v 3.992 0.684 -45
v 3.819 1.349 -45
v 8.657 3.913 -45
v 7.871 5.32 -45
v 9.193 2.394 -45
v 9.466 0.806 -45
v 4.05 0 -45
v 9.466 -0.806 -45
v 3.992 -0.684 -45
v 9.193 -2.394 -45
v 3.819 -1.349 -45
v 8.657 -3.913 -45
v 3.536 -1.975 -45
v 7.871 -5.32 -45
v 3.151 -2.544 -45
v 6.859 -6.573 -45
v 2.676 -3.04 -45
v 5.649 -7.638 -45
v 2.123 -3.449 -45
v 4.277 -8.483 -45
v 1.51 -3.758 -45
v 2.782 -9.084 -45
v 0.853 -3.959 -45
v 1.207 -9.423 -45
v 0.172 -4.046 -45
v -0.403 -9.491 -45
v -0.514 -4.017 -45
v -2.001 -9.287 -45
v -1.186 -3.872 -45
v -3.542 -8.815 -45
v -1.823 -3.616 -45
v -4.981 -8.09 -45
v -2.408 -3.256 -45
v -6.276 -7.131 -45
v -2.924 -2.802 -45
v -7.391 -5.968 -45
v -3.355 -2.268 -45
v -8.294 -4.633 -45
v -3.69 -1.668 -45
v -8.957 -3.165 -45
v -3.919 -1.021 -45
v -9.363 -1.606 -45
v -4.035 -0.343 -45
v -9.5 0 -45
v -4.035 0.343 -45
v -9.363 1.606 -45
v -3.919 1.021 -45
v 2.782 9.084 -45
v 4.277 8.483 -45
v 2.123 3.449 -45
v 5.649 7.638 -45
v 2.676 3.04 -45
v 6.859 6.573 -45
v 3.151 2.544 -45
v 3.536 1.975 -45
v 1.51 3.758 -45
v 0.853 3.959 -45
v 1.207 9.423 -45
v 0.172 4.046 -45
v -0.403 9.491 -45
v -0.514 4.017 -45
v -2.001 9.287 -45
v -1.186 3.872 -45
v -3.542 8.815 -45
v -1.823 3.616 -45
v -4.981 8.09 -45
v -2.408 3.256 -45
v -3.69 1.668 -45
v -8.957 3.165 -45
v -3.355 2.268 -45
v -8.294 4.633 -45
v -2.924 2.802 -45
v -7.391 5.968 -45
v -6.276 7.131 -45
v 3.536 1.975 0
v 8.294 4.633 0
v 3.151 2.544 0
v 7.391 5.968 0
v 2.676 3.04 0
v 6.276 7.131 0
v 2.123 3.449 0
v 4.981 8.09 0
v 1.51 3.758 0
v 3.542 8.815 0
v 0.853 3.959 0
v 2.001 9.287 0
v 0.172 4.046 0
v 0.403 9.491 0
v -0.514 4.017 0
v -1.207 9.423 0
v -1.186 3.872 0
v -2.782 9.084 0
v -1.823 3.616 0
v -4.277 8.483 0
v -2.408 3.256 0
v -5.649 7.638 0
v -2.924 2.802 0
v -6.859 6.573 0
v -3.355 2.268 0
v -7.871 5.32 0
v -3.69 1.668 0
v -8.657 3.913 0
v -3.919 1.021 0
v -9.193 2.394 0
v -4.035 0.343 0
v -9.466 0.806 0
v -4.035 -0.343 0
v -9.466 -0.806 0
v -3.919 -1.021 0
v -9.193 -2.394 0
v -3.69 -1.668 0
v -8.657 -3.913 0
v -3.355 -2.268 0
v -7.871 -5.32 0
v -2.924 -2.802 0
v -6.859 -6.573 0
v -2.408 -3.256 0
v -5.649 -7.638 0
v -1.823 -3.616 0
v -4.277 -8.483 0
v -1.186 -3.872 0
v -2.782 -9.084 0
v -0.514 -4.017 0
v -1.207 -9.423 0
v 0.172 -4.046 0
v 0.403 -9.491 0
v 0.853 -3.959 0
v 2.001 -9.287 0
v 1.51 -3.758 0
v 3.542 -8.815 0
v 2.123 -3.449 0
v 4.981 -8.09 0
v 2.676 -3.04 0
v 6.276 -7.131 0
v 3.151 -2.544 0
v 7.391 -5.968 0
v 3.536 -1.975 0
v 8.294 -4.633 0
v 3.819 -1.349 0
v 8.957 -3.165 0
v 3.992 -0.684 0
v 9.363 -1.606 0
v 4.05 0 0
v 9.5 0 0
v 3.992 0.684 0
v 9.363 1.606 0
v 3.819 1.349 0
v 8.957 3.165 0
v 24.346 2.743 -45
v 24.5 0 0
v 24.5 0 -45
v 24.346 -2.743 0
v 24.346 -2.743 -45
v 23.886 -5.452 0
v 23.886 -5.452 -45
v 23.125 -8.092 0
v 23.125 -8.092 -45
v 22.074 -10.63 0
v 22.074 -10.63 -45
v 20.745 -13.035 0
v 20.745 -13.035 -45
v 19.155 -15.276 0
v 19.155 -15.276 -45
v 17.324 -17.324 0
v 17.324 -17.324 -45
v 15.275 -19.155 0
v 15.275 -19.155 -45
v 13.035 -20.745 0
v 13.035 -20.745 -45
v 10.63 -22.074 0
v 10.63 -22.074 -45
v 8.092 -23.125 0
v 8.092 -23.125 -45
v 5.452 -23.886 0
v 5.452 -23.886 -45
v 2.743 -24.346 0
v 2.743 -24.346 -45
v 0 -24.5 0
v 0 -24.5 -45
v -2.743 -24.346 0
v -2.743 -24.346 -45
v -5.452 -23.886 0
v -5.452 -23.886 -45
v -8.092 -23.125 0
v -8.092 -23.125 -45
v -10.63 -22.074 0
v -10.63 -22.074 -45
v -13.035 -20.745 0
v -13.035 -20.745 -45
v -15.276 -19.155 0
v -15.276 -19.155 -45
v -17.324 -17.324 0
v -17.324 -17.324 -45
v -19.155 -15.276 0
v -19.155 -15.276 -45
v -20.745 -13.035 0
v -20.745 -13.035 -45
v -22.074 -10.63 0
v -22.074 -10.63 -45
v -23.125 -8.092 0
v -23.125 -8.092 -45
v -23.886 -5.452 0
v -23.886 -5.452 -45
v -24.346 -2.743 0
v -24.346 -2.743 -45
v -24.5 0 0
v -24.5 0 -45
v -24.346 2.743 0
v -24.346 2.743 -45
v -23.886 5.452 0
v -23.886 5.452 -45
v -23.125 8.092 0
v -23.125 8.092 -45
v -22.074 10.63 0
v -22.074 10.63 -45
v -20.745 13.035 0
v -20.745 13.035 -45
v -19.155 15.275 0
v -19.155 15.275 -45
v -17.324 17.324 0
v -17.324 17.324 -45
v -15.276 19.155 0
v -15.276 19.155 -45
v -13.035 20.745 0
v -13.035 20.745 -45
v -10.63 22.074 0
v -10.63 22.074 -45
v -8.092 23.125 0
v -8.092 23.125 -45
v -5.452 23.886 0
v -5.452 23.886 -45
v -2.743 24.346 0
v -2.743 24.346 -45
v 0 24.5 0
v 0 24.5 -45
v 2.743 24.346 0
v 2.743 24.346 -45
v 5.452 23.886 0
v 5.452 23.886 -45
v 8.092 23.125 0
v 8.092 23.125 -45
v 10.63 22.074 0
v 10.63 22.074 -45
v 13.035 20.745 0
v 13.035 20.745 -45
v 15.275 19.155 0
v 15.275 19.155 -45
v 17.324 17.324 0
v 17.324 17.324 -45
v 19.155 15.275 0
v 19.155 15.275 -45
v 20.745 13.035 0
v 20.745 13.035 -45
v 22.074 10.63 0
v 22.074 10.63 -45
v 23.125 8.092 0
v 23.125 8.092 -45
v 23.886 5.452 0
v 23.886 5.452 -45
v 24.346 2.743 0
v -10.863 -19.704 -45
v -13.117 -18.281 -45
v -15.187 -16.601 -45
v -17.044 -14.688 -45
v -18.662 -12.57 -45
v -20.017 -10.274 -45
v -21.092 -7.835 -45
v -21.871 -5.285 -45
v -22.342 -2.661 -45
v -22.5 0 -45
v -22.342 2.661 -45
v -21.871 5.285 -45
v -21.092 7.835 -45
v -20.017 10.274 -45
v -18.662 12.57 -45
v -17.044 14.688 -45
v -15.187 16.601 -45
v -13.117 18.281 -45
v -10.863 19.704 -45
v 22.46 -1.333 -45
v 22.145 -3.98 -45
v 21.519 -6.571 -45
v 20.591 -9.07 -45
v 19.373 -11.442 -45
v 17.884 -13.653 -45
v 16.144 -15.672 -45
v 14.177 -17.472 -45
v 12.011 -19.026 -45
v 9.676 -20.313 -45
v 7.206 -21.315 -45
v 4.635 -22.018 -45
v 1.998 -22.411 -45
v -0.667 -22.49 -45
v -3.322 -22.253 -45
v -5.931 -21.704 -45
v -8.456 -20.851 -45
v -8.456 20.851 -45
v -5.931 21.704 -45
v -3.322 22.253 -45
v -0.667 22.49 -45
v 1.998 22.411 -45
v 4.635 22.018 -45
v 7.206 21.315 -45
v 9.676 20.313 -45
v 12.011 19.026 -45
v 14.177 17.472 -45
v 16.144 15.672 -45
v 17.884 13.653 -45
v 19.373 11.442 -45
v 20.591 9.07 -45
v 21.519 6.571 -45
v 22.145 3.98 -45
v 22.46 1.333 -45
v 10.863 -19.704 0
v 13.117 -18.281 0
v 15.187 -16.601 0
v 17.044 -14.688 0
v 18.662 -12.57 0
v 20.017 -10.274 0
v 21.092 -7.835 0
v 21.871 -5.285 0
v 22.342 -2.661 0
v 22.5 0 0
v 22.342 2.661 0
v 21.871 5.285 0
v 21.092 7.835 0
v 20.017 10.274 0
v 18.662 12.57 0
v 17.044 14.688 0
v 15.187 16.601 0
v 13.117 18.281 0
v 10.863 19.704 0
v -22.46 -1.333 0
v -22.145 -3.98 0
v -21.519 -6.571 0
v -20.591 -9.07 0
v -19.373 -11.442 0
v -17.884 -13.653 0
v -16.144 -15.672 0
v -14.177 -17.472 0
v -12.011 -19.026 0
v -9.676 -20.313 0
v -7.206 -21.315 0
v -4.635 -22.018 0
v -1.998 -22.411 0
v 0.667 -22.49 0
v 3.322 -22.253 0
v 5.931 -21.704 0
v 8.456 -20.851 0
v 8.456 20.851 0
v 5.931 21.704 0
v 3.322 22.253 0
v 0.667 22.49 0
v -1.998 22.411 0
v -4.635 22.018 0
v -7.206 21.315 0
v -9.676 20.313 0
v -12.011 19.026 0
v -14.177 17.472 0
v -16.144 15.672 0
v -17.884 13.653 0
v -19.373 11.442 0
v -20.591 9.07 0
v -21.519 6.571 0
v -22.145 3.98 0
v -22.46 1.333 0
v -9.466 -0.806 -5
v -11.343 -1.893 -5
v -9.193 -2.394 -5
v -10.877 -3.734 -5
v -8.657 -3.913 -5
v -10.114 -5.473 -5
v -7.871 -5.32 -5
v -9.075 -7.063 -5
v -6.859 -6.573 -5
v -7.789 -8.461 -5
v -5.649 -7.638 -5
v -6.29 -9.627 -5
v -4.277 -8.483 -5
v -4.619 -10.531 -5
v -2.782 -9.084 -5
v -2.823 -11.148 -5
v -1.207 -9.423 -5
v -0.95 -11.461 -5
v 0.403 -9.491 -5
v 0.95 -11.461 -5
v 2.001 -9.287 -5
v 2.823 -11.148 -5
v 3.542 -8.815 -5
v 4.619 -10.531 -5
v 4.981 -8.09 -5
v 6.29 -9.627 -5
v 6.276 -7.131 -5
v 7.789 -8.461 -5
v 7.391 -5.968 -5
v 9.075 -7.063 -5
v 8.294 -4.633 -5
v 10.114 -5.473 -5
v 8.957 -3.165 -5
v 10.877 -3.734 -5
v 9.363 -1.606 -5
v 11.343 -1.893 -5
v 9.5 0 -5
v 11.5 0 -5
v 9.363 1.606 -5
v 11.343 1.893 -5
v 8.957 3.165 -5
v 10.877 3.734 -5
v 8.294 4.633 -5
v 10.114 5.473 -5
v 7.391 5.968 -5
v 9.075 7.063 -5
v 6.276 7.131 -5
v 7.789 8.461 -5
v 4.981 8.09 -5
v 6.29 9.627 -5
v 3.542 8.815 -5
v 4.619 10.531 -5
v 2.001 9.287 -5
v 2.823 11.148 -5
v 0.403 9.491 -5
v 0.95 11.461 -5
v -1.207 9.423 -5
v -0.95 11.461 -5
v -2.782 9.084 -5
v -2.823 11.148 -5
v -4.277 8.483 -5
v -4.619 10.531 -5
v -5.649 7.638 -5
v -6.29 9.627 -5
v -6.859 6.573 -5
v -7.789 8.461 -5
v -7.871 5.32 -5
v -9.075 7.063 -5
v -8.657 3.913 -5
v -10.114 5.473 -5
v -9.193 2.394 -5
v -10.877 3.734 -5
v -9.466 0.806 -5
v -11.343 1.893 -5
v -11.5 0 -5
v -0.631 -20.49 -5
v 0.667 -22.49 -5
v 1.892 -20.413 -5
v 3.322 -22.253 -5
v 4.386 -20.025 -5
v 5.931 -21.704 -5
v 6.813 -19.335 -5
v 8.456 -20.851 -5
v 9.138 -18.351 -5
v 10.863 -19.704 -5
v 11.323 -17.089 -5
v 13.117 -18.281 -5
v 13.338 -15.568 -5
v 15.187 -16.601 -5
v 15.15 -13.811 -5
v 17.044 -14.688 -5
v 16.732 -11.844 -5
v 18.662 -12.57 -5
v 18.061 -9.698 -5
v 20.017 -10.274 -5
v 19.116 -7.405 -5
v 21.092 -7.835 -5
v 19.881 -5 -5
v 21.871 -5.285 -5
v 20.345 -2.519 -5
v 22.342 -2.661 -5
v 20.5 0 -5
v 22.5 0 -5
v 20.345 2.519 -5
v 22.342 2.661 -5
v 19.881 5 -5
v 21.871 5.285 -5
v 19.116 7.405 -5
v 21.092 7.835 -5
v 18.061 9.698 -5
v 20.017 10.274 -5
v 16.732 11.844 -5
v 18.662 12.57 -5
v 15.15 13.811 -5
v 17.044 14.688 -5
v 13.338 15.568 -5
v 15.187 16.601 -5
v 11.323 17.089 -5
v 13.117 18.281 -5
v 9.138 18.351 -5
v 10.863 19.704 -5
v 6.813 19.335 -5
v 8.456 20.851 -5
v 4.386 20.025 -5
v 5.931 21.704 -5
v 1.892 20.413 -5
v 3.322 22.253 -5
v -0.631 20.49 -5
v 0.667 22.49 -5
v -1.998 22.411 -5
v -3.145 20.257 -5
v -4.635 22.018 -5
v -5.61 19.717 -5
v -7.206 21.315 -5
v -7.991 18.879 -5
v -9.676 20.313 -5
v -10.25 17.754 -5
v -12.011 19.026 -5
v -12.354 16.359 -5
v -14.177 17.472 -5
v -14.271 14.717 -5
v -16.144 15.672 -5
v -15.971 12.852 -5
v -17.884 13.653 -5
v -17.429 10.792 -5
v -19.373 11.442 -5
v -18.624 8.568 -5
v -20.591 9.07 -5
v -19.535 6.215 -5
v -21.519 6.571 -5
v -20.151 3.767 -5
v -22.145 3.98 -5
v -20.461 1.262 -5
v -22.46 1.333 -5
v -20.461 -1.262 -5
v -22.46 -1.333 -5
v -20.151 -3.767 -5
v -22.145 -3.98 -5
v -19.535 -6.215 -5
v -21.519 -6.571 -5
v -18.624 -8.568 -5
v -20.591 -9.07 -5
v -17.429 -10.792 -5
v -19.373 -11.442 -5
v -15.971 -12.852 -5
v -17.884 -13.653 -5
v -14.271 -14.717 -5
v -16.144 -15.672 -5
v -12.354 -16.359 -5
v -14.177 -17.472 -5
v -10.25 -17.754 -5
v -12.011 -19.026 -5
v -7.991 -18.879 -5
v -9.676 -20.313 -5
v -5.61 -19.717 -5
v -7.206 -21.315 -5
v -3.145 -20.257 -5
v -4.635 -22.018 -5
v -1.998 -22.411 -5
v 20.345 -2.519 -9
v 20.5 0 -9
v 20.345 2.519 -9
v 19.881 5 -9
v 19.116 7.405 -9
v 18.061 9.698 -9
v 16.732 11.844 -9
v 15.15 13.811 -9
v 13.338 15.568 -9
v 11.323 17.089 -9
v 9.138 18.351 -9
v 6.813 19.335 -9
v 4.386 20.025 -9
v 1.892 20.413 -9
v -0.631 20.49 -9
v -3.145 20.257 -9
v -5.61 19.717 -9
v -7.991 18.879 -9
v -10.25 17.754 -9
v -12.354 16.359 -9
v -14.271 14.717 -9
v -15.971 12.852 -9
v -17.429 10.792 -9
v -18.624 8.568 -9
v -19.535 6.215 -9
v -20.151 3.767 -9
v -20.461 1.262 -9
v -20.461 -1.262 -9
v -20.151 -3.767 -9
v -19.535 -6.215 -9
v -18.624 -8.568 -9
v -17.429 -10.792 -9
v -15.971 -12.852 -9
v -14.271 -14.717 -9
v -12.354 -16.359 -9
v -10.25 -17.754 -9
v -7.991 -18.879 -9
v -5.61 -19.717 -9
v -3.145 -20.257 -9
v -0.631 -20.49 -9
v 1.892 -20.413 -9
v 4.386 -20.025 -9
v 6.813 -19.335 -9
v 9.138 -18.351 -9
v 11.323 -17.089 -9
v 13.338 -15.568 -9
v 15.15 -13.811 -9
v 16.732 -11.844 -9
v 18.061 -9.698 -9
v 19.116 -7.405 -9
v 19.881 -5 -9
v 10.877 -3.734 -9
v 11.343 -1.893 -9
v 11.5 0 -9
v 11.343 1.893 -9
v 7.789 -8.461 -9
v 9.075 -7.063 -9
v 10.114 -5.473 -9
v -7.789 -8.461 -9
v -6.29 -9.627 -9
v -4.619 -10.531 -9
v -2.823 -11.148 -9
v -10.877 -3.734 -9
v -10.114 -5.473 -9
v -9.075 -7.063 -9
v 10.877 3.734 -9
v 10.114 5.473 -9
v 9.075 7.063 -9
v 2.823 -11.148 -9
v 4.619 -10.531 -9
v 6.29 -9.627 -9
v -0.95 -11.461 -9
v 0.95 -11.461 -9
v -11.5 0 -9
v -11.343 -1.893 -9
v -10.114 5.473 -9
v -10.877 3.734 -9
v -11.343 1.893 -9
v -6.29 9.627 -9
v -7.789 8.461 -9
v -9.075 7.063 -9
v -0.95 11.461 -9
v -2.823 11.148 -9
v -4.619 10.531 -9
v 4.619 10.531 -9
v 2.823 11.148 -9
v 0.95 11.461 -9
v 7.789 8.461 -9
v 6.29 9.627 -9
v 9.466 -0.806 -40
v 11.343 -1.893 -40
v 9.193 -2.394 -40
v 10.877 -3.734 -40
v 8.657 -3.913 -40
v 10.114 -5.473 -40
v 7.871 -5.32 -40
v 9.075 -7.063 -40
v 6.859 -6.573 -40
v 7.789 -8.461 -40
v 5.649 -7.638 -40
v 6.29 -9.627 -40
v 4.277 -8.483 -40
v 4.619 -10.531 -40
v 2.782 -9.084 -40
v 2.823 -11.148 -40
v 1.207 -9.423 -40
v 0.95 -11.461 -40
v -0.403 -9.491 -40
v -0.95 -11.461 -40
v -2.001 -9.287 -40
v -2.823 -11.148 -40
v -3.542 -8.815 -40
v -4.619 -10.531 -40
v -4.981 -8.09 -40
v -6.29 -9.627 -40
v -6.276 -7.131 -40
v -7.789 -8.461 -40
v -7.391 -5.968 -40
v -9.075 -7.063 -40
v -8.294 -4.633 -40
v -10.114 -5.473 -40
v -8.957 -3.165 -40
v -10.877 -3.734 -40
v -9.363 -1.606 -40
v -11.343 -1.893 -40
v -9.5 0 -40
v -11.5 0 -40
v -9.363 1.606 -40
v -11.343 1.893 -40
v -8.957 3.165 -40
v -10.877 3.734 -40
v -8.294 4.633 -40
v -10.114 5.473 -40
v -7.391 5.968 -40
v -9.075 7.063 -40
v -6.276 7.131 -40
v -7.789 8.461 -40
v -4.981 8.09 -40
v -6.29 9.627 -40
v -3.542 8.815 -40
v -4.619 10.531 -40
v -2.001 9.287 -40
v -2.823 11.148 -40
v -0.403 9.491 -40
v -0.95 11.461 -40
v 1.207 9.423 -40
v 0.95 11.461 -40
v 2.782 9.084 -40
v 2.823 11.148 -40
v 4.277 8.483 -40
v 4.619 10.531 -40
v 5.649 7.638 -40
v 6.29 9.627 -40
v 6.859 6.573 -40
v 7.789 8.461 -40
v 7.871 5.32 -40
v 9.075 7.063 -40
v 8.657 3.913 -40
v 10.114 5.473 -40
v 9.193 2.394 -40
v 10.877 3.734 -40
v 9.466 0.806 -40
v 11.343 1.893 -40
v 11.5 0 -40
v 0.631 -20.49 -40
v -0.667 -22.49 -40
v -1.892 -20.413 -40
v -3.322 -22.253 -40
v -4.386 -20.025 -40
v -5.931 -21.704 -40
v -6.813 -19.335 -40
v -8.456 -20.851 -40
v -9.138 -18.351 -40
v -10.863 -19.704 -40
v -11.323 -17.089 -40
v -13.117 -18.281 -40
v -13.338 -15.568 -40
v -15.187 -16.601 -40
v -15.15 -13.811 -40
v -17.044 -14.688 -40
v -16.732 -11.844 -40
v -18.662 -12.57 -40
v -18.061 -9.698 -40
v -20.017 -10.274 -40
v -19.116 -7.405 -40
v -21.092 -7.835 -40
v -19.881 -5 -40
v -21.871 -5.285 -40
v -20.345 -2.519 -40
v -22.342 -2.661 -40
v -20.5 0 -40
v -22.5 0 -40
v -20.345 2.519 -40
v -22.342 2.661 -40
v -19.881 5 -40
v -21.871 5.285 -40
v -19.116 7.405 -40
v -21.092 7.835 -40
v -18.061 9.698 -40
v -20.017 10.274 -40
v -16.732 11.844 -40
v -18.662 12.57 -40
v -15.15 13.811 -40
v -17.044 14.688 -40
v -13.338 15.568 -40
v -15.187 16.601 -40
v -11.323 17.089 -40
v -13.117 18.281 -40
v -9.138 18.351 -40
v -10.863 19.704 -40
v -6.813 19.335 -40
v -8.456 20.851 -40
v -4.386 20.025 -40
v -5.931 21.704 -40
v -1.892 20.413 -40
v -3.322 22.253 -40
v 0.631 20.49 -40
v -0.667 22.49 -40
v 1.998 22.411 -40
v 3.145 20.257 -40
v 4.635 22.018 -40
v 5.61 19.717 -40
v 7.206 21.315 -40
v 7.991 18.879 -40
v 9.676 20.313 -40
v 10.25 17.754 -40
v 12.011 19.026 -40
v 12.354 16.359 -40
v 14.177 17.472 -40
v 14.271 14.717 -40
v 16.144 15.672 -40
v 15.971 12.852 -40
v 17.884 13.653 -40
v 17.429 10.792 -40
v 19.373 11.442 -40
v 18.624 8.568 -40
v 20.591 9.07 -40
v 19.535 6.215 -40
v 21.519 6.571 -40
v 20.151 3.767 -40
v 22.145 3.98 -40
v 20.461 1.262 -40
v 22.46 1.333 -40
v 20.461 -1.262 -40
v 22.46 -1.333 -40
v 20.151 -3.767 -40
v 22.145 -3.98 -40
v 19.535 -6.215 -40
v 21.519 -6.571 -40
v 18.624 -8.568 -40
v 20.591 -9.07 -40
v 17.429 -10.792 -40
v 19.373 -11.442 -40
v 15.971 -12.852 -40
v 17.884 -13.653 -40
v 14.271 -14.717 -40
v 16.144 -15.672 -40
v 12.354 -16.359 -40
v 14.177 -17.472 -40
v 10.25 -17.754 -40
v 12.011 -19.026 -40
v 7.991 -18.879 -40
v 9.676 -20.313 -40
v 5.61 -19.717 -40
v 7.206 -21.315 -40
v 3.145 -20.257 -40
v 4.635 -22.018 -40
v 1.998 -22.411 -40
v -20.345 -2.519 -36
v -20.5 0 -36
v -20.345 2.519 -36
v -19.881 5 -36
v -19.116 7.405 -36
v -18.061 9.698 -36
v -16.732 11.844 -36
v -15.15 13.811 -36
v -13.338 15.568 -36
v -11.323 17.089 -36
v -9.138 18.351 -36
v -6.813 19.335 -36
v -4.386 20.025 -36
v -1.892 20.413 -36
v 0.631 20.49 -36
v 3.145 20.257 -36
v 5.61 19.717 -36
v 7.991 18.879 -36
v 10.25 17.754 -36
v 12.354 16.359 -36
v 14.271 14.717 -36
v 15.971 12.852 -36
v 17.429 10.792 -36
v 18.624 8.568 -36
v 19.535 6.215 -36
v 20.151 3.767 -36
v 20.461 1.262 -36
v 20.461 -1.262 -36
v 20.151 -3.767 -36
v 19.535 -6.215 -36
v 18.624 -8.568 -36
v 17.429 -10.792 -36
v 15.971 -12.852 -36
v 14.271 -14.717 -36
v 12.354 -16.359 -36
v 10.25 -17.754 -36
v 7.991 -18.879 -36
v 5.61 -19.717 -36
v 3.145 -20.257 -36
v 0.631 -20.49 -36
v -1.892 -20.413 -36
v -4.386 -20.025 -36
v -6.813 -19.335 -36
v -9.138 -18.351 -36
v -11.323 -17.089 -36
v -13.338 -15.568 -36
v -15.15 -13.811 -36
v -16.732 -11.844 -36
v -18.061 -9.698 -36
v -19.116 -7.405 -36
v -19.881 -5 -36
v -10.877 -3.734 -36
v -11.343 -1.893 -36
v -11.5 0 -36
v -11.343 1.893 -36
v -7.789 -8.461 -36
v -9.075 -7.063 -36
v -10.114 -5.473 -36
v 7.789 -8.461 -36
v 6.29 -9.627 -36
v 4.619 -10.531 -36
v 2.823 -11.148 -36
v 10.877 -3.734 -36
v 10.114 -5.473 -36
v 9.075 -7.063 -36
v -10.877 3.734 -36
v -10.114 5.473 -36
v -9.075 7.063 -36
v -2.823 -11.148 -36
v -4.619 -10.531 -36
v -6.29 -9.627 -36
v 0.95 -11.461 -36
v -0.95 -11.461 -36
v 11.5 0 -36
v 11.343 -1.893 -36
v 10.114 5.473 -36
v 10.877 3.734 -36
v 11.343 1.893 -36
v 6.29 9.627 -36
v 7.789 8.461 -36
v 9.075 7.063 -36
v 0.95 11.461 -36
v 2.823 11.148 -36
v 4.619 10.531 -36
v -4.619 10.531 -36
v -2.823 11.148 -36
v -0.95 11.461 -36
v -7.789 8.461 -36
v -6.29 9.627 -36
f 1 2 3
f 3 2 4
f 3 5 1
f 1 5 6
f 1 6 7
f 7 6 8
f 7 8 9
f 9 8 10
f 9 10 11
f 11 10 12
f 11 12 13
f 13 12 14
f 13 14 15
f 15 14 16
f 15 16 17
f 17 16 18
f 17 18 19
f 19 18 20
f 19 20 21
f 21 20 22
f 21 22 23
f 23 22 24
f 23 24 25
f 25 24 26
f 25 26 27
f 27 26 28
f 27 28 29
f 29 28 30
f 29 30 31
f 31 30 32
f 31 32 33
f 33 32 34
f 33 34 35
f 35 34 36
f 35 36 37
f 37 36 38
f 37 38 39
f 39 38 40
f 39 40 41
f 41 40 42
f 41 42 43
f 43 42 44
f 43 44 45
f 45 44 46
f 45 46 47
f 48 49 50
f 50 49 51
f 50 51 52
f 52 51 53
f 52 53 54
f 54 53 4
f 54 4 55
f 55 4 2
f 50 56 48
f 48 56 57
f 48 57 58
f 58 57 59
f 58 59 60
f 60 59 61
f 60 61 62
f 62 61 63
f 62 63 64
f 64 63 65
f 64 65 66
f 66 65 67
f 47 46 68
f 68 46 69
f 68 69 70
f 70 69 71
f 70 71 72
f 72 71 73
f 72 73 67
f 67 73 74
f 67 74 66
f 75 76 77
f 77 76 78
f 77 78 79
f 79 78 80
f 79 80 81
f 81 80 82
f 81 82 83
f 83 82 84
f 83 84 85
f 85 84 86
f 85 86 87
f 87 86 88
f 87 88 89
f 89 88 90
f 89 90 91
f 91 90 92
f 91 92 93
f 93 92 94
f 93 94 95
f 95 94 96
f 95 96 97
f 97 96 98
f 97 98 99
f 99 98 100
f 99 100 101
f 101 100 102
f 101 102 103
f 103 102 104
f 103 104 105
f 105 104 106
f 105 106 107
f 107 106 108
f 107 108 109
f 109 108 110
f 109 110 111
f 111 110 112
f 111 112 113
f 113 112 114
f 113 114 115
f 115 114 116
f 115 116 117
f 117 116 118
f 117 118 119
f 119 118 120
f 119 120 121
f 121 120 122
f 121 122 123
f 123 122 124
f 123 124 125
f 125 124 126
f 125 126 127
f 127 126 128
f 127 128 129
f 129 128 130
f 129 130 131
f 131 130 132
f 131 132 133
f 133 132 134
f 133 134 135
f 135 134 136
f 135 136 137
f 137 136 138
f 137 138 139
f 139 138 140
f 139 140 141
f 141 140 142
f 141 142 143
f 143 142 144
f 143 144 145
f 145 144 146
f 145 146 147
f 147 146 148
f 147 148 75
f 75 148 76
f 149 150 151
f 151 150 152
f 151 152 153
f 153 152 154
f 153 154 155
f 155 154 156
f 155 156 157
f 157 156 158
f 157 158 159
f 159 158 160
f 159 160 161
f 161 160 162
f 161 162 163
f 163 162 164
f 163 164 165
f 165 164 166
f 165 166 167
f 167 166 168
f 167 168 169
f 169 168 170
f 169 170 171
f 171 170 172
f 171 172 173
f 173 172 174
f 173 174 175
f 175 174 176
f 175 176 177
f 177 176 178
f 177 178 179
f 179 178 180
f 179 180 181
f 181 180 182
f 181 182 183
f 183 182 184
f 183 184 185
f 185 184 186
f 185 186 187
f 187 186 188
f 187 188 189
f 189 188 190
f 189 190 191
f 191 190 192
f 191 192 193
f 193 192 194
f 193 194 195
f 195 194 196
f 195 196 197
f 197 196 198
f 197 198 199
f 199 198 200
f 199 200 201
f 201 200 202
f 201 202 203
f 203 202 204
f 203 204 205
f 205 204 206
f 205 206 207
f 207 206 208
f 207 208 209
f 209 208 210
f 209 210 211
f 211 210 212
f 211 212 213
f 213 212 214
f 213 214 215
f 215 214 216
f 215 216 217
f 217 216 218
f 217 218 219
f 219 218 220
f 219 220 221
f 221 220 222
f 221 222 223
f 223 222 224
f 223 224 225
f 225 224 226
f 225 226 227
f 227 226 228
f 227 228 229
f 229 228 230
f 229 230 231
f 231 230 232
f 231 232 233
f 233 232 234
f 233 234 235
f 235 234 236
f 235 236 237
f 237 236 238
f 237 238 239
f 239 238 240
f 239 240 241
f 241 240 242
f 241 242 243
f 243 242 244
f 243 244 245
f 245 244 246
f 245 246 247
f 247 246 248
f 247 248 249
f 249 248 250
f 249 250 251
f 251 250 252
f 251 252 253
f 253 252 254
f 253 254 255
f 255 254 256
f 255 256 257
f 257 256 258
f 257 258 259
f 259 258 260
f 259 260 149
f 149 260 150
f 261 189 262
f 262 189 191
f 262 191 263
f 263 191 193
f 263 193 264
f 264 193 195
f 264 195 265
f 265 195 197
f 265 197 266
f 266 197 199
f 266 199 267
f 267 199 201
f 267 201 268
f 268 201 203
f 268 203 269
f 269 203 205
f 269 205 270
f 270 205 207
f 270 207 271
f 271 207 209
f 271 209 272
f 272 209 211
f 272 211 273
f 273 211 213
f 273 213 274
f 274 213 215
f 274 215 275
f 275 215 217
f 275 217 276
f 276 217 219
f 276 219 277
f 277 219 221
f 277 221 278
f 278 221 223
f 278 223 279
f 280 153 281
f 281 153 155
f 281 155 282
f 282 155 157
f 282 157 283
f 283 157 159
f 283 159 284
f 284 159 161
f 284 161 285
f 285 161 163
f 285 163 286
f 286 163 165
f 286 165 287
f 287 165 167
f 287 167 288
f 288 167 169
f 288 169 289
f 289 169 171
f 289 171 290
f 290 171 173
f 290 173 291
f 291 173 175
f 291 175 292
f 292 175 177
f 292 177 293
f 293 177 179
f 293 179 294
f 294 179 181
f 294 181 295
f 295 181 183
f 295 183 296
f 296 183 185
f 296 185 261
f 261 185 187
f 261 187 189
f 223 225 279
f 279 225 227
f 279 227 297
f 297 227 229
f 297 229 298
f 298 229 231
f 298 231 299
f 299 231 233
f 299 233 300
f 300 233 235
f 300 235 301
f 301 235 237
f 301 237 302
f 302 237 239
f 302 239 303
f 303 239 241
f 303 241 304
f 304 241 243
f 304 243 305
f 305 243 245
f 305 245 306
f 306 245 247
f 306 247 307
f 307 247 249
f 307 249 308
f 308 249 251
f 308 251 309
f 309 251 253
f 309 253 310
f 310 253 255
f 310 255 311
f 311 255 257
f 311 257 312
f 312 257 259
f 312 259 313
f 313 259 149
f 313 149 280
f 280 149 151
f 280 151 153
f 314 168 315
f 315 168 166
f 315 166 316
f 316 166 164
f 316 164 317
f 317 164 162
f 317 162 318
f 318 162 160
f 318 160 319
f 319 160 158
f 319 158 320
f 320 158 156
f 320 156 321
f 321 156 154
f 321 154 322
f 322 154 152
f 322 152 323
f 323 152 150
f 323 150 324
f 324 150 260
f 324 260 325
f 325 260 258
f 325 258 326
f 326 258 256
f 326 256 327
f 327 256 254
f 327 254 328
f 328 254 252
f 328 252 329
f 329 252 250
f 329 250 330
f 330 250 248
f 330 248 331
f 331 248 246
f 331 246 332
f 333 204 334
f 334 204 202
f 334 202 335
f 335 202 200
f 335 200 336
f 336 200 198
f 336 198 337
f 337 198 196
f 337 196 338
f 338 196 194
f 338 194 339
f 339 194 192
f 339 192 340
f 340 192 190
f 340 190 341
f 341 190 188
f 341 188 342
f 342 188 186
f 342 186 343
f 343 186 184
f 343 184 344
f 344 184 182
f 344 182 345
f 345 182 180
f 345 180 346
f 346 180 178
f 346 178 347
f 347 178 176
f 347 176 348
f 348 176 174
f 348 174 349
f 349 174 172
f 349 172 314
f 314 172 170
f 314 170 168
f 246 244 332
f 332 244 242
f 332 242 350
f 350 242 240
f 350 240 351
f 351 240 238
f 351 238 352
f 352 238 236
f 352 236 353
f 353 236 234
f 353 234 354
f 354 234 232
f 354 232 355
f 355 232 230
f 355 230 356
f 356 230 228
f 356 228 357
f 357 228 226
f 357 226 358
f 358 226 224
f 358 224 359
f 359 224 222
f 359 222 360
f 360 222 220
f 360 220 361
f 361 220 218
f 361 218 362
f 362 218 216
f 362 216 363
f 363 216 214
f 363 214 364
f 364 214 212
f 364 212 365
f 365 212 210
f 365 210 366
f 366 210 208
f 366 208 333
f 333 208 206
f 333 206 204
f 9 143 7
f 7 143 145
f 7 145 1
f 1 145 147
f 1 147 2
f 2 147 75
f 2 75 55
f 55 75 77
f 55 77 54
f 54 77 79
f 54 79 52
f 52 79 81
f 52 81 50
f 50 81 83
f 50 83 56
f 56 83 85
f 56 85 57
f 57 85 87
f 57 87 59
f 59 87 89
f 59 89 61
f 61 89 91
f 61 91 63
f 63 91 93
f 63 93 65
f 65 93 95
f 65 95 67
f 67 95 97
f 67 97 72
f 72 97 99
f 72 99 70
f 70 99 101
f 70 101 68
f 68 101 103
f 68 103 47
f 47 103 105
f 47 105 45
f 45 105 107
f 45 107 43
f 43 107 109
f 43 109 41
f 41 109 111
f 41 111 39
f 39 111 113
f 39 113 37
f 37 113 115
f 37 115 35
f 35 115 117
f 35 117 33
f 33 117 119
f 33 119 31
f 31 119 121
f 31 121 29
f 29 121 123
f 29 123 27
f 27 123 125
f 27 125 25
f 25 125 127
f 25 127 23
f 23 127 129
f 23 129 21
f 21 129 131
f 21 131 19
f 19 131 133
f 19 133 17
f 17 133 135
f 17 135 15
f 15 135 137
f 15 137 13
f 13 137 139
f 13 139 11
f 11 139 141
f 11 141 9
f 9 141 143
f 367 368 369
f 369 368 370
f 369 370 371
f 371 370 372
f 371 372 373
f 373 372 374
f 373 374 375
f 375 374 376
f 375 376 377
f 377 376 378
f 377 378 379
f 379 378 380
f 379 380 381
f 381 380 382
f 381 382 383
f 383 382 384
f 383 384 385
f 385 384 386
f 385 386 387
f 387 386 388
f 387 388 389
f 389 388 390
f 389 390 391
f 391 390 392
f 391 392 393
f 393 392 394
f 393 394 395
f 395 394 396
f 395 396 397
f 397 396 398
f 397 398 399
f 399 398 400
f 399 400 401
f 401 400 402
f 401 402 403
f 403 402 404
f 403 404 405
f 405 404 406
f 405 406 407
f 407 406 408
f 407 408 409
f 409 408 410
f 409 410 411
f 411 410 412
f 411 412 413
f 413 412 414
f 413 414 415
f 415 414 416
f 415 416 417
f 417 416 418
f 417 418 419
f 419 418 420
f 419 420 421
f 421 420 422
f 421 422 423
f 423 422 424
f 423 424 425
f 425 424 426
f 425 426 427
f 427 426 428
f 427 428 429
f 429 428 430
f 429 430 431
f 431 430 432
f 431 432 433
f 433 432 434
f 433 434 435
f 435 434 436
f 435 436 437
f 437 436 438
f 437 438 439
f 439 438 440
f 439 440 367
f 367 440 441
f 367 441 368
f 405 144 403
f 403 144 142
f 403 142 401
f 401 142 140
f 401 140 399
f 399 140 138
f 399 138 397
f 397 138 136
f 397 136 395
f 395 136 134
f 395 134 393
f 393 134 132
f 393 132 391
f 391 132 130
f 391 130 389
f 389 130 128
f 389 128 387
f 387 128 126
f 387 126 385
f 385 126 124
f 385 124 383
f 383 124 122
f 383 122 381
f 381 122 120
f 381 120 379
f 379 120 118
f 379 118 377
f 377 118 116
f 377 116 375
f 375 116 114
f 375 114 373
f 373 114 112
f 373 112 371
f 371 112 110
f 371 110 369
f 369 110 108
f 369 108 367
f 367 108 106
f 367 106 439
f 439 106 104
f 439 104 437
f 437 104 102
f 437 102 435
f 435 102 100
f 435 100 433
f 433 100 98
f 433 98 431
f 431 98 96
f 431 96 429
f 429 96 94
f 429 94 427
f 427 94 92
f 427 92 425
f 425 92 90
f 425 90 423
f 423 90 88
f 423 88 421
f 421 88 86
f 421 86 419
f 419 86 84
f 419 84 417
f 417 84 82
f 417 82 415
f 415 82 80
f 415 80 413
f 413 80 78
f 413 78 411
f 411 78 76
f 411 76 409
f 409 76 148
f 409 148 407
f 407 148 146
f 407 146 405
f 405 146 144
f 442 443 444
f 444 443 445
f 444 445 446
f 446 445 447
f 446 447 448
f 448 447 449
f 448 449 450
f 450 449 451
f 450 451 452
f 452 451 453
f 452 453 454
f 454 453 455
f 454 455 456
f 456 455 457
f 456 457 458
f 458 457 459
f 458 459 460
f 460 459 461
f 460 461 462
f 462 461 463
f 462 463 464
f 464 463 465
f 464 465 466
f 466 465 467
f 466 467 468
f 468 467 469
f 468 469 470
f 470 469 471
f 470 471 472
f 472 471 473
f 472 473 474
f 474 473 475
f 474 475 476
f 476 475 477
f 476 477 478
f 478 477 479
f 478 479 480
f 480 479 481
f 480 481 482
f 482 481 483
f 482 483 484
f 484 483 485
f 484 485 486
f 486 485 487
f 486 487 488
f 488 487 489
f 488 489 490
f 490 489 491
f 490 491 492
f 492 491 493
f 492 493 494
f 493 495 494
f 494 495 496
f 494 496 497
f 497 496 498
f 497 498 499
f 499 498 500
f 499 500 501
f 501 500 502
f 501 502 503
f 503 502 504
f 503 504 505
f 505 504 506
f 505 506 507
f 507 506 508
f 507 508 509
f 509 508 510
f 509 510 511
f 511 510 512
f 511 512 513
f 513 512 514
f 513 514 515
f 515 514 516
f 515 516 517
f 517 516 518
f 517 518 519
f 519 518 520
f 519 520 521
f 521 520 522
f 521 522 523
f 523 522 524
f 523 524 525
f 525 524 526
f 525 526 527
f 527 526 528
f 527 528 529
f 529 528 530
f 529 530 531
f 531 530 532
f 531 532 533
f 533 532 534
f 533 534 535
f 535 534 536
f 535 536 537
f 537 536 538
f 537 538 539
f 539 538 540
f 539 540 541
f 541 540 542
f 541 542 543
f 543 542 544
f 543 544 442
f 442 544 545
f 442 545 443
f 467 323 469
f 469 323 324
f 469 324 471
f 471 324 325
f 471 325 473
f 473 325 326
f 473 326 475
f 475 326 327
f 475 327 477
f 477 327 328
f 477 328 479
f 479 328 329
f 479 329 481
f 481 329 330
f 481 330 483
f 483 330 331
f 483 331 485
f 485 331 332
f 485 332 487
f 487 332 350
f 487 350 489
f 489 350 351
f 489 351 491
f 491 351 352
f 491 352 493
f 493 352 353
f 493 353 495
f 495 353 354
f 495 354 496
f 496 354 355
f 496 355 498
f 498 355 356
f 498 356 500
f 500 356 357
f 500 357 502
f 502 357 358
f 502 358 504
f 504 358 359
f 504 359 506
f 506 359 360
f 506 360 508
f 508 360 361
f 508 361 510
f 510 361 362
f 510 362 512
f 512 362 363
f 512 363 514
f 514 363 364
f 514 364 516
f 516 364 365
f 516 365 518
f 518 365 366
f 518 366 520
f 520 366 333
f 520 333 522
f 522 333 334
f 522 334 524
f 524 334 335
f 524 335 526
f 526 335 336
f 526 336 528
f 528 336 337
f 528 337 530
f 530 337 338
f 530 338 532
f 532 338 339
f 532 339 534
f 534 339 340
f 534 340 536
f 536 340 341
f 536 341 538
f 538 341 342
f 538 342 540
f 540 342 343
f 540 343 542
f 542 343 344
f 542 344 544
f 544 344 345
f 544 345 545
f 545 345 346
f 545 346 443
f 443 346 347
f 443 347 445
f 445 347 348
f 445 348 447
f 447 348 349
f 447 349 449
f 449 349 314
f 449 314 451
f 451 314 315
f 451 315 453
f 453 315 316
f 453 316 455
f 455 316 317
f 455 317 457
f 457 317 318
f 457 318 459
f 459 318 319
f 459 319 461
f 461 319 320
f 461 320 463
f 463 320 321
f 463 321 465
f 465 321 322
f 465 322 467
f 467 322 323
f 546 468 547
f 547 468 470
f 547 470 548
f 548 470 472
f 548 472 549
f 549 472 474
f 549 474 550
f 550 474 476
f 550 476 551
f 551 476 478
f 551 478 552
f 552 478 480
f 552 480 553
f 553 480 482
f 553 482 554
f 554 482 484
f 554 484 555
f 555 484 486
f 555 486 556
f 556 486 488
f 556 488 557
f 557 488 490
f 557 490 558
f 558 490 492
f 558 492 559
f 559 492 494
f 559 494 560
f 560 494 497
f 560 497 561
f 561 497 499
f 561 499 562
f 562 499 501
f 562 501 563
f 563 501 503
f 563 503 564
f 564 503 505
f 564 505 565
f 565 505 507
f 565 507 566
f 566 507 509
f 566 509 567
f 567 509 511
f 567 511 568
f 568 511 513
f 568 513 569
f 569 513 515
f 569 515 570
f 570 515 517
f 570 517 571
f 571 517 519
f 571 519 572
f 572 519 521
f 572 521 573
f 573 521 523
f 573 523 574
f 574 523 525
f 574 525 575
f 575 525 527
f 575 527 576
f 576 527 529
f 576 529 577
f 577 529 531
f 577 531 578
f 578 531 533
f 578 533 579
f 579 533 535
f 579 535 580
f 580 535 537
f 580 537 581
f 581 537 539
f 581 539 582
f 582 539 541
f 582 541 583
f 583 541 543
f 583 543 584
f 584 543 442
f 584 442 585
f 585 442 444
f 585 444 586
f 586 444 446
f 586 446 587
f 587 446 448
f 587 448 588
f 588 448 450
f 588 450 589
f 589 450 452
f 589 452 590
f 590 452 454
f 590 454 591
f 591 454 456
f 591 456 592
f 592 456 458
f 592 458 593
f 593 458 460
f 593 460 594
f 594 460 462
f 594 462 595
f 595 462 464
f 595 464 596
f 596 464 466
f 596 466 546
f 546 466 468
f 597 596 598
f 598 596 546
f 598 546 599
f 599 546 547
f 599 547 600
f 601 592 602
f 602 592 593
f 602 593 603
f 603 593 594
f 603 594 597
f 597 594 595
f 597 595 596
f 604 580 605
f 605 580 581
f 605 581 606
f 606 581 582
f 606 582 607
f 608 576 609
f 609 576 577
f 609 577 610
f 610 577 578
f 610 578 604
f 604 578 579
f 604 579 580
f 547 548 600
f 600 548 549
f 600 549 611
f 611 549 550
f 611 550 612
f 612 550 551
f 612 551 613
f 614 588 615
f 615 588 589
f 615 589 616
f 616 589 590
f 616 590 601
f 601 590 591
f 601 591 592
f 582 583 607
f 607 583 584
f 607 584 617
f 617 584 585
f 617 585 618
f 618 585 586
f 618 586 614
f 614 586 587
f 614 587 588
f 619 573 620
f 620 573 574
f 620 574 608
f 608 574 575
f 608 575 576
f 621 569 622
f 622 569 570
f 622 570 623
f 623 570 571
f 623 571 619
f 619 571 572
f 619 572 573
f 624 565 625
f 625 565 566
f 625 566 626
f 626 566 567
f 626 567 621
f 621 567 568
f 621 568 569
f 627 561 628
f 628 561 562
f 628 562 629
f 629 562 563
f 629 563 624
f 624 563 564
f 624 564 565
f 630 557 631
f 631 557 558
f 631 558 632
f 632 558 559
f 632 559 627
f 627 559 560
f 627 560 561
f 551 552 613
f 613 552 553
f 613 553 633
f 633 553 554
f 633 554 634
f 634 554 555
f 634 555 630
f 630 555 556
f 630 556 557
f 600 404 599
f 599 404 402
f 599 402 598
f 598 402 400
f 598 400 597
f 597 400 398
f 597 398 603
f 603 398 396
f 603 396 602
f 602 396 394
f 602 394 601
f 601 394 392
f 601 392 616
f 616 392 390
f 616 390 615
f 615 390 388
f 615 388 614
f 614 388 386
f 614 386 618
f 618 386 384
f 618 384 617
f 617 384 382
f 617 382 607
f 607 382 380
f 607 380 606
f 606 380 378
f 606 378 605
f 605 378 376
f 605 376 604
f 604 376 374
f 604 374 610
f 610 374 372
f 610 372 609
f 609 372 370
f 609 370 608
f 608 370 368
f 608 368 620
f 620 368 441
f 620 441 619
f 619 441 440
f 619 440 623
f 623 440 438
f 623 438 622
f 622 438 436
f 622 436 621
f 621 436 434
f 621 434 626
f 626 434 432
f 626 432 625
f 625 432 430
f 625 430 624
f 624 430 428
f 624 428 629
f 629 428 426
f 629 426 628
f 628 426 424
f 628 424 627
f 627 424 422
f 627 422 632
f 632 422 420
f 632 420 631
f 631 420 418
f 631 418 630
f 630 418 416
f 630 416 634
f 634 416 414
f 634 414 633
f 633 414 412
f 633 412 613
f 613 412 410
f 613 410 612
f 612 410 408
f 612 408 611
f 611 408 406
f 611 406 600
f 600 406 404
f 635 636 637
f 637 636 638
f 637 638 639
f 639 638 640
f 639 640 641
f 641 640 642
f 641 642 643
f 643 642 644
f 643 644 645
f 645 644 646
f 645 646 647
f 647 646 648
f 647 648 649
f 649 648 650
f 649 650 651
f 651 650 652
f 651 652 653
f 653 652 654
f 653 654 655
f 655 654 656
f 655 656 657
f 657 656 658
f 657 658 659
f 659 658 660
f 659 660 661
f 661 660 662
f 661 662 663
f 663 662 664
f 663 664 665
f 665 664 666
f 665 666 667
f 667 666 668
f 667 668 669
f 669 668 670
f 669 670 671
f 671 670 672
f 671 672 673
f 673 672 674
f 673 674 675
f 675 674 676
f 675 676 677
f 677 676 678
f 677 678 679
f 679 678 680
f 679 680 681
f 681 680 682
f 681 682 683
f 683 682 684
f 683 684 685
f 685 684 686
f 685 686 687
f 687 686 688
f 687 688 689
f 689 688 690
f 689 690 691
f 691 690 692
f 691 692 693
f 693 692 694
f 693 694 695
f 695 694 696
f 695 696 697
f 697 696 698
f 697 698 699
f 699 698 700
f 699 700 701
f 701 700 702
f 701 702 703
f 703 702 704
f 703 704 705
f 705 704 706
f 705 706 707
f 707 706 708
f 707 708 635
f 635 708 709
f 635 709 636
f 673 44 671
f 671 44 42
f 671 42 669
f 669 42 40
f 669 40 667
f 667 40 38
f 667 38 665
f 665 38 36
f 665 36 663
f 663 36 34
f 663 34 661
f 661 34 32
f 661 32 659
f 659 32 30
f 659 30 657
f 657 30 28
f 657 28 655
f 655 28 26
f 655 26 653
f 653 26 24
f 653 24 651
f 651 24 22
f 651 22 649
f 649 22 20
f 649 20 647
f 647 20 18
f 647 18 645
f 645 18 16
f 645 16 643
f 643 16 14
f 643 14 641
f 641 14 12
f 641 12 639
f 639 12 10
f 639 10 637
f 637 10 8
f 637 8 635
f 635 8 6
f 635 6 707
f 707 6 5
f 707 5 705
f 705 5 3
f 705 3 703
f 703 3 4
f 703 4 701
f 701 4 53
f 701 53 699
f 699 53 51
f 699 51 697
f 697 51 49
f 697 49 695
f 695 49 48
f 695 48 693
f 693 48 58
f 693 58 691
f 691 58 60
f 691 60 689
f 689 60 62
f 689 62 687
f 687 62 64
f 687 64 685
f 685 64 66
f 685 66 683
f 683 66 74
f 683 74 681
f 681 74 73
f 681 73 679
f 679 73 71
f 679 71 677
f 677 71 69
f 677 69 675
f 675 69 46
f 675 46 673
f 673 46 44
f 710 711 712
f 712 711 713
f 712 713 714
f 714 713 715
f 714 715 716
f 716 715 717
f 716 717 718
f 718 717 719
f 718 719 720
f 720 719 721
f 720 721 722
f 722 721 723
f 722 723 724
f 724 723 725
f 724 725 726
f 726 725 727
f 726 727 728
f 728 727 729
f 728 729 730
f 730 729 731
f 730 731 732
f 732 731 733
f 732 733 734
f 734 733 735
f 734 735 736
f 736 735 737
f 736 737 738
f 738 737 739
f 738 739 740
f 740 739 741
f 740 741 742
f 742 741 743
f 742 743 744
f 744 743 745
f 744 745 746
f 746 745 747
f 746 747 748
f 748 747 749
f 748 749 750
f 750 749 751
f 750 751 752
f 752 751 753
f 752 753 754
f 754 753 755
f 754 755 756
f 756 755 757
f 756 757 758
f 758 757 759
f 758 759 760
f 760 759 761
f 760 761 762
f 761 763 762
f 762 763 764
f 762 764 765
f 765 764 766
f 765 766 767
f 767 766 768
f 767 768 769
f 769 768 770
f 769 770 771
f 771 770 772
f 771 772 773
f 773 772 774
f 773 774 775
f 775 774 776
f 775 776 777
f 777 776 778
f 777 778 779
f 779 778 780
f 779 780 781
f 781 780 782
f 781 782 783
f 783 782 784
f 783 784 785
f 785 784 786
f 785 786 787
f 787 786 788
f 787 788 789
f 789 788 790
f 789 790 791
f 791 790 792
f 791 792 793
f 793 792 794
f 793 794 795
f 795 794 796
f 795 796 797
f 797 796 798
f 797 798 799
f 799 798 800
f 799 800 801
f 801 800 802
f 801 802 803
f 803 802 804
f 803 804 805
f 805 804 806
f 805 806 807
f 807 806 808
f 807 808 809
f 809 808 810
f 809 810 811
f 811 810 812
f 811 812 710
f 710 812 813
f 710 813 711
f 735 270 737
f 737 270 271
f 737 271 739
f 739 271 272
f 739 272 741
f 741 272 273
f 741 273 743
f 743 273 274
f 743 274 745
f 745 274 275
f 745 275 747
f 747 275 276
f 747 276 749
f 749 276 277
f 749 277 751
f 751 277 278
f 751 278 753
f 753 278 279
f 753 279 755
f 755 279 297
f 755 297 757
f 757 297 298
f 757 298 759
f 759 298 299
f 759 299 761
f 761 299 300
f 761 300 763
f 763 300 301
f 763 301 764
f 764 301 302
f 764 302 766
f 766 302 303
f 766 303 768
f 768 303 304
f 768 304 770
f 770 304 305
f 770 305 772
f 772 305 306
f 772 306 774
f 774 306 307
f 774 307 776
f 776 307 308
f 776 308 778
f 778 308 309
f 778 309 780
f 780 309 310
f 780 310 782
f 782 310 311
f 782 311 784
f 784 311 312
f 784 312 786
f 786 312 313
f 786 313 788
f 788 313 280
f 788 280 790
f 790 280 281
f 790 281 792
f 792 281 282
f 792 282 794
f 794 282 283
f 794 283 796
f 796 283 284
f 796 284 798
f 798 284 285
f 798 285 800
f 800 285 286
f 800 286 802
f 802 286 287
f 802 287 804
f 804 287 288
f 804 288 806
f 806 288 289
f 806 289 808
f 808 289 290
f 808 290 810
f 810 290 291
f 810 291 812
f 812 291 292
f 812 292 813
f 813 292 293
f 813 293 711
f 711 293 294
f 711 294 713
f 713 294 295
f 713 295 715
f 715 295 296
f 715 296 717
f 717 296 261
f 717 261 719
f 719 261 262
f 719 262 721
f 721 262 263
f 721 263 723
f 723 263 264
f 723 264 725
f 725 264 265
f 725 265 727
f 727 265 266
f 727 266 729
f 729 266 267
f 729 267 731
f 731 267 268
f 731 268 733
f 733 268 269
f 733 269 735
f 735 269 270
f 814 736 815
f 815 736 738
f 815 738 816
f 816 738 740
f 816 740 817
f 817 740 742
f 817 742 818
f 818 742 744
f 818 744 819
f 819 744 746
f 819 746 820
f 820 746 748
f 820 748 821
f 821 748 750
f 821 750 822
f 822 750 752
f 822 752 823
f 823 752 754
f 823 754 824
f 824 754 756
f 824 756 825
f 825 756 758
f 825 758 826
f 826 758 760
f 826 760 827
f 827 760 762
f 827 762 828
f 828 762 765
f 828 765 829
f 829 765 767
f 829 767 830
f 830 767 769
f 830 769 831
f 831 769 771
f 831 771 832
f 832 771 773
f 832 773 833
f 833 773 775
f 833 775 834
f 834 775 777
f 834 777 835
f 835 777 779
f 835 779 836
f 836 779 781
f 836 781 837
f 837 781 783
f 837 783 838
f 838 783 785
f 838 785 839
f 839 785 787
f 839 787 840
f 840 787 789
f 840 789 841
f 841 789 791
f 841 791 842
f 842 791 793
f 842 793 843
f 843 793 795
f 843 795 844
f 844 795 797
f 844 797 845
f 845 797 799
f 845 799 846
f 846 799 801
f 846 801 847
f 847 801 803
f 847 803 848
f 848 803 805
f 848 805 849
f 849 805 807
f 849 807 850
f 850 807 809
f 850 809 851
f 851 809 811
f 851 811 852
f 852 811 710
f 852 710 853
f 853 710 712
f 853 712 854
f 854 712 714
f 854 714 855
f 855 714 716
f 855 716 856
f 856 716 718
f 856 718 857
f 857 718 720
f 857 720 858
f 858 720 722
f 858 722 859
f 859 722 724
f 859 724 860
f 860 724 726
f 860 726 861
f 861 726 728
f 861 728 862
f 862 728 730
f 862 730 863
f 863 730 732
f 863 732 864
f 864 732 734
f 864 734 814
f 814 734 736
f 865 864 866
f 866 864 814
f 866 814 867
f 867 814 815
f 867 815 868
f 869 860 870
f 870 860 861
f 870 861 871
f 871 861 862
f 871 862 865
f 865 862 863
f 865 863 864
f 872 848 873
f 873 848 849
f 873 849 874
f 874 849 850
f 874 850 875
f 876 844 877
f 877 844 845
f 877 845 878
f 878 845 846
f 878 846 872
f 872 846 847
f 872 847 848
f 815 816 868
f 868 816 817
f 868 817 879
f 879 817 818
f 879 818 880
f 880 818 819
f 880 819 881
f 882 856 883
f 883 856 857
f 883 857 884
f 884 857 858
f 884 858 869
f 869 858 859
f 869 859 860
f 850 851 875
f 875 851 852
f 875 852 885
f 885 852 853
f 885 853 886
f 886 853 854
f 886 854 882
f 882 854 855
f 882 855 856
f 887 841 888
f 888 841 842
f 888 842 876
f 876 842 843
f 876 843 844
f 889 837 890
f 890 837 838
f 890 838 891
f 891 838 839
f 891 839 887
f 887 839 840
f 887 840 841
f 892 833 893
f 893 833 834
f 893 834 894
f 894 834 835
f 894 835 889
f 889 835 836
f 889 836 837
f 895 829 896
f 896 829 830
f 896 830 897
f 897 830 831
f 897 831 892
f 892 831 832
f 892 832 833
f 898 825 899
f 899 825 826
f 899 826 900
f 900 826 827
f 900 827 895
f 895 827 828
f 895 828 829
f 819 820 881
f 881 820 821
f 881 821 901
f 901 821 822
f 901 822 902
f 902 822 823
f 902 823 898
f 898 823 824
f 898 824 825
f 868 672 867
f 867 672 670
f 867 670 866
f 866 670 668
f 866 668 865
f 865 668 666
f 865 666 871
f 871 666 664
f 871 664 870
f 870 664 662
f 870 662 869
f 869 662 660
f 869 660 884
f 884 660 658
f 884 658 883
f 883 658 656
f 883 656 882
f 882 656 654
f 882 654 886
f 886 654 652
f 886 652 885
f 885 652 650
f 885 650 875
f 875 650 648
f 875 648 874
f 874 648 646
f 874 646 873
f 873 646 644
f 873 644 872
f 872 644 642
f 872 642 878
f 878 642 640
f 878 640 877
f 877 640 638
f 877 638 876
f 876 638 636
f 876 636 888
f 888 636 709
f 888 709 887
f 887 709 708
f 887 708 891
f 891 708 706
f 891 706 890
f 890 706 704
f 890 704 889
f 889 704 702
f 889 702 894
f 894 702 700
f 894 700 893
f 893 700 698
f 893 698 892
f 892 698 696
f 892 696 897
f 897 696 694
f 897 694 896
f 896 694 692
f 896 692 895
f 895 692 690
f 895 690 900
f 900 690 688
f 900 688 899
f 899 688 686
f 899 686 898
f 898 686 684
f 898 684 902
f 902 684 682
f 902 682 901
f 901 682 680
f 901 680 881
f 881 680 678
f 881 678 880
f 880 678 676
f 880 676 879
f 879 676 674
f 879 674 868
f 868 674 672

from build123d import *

# Parameters (mm, degrees)
SKETCH1_R           = 24.5
SKETCH1_R_2         = 4.05
BOSS_EXTRUDE1_DEPTH = 45
SKETCH2_R           = 20.5
SKETCH2_R_2         = 11.5
CUT_EXTRUDE1_DEPTH  = 9
CUT_EXTRUDE2_START  = -9
SKETCH3_R           = 20.5
SKETCH3_R_2         = 11.5
CUT_EXTRUDE2_DEPTH  = 9
SKETCH5_R           = 22.5
SKETCH5_R_2         = 9.5
CUT_EXTRUDE3_DEPTH  = 5
CUT_EXTRUDE4_START  = -5
SKETCH6_R           = 22.5
SKETCH6_R_2         = 9.5
CUT_EXTRUDE4_DEPTH  = 5


with BuildPart() as part:
    # Sketch1 → Boss-Extrude1 (new body)
    with BuildSketch(Plane.XY):
        Circle(SKETCH1_R)
        Circle(SKETCH1_R_2, mode=Mode.SUBTRACT)
    extrude(amount=-BOSS_EXTRUDE1_DEPTH)

    # Sketch2 → Cut-Extrude1 (cut)
    with BuildSketch(Plane.XY):
        Circle(SKETCH2_R)
        Circle(SKETCH2_R_2, mode=Mode.SUBTRACT)
    extrude(amount=-CUT_EXTRUDE1_DEPTH, mode=Mode.SUBTRACT)

    # Sketch3 → Cut-Extrude2 (cut)
    with BuildSketch(Plane(origin=(0, 0, -45), x_dir=(-1, 0, 0), z_dir=(0, 0, -1)).offset(CUT_EXTRUDE2_START)):
        with Locations(Location((0, 0, 0), (0, 0, 180))):
            Circle(SKETCH3_R)
        with Locations(Location((0, 0, 0), (0, 0, 180))):
            Circle(SKETCH3_R_2, mode=Mode.SUBTRACT)
    extrude(amount=CUT_EXTRUDE2_DEPTH, mode=Mode.SUBTRACT)

    # Sketch5 → Cut-Extrude3 (cut)
    with BuildSketch(Plane.XY):
        Circle(SKETCH5_R)
        Circle(SKETCH5_R_2, mode=Mode.SUBTRACT)
    extrude(amount=-CUT_EXTRUDE3_DEPTH, mode=Mode.SUBTRACT)

    # Sketch6 → Cut-Extrude4 (cut)
    with BuildSketch(Plane(origin=(0, 0, -45), x_dir=(-1, 0, 0), z_dir=(0, 0, -1)).offset(CUT_EXTRUDE4_START)):
        with Locations(Location((0, 0, 0), (0, 0, 180))):
            Circle(SKETCH6_R)
        with Locations(Location((0, 0, 0), (0, 0, 180))):
            Circle(SKETCH6_R_2, mode=Mode.SUBTRACT)
    extrude(amount=CUT_EXTRUDE4_DEPTH, mode=Mode.SUBTRACT)


solid = part.part
